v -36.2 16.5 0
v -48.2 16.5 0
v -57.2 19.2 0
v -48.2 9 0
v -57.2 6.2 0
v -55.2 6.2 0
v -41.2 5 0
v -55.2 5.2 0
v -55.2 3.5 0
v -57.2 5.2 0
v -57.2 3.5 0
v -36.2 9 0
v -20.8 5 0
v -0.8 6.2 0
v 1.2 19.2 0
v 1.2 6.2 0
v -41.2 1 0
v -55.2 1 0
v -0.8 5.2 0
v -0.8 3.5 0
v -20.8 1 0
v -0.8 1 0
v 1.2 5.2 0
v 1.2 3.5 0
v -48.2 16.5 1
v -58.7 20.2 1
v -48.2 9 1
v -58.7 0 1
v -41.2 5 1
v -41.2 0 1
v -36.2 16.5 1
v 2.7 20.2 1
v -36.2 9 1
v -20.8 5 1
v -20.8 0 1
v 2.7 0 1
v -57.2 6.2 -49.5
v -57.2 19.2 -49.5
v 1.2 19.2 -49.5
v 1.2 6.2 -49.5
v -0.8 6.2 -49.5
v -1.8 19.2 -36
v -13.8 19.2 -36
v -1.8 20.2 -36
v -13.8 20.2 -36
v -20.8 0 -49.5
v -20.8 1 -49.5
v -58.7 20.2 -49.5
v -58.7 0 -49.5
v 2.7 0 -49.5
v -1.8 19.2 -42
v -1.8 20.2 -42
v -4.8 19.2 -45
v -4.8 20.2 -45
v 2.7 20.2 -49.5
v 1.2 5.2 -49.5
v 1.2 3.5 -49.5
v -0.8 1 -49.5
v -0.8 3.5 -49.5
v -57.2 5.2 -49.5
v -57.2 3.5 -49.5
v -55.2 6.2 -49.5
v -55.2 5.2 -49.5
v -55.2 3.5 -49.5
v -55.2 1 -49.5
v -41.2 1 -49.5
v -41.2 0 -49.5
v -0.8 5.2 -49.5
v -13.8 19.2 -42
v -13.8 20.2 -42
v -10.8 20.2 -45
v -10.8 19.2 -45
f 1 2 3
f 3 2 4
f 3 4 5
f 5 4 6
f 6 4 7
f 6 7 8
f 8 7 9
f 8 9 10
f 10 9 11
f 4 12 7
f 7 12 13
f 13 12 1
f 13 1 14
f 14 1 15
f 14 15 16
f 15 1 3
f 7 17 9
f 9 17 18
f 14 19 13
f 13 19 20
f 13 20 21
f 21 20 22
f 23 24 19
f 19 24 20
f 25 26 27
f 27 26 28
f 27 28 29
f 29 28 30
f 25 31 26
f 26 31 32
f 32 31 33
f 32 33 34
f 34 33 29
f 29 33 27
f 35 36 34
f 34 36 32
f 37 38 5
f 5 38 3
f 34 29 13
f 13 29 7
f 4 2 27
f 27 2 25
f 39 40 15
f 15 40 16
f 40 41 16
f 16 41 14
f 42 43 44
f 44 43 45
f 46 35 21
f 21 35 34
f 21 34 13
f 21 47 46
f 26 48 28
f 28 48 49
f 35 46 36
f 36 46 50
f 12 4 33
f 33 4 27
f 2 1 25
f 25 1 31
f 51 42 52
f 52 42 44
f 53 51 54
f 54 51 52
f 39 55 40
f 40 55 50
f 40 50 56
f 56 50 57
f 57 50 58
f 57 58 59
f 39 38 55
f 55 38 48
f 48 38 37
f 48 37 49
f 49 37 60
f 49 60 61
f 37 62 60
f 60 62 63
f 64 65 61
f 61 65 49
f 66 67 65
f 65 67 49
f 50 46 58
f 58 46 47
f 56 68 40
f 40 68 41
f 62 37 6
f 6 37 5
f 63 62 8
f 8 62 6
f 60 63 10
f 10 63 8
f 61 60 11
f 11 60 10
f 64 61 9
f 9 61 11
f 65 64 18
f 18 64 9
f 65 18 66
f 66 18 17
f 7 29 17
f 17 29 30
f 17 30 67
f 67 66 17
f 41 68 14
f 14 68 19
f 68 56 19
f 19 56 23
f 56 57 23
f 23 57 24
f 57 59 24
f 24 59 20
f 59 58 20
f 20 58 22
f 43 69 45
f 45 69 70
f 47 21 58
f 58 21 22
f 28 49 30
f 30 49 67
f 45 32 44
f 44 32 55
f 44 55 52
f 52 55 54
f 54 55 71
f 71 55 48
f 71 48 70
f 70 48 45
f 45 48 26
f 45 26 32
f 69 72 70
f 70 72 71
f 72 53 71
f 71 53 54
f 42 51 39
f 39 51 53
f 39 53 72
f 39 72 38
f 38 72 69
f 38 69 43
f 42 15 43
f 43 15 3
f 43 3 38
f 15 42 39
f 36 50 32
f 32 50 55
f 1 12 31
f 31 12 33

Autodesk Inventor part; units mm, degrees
ref_plane "YZ Plane" through (0, 0, 0) normal (1, 0, 0) x (0, 1, 0)
ref_plane "XZ Plane" through (0, 0, 0) normal (0, 1, 0) x (-1, 0, 0)
ref_plane "XY Plane" through (0, 0, 0) normal (0, 0, 1) x (1, 0, 0)
sketch "Sketch1" plane through (0, 0, 0) normal (0, 1, 0) x (-1, 0, 0)
  line L0 (0, 0) -> (56, 0)
  line L1 (56, 0) -> (56, -50)
  line L2 (56, -50) -> (0, -50)
  line L3 (0, -50) -> (0, 0)
  line L4 (56.2, 0) -> (-0.2, 0)
  line L5 (-0.2, 0) -> (-0.2, -50)
  line L6 (-0.2, -50) -> (56.2, -50)
  line L7 (56.2, -50) -> (56.2, 0)
  line L8 (58.7, 2.5) -> (-2.7, 2.5)
  line L9 (-2.7, 2.5) -> (-2.7, -52.5)
  line L10 (-2.7, -52.5) -> (58.7, -52.5)
  line L11 (58.7, -52.5) -> (58.7, 2.5)
  line L12 (56.2, -48.0985) -> (56.2, -52.5)
  line L13 (-0.2, -48.7936) -> (-0.2, -52.5)
  point P0 (-0.2, -50)
  dimension "d0" = 56
  dimension "d1" = 50
  dimension "d2" = 0.2
  dimension "d3" = 0.2
  dimension "d4" = 0
  dimension "d5" = 0
  dimension "d6" = 2.5
  dimension "d7" = 2.5
  dimension "d8" = 2.5
  dimension "d9" = 2.5
extrude "Extrusion1" add sketch "Sketch1" along normal blind 15.2 contours L4 L5 L13 L10 L9 L8 L11 L12 L7 L0
extrude "Extrusion2" add sketch "Sketch1" along normal blind 1
sketch "Sketch2" plane through (0.2, 15.2, 0) normal (0, 0, -1) x (-1, 0, 0)
  line L0 (0, -14.2) -> (0, 0) projected
  line L1 (0, -11.7) -> (56.4, -11.7)
  line L2 (56.4, -11.7) -> (56.4, -14.2)
  line L3 (56.4, -14.2) -> (0, -14.2)
  line L4 (0, -14.2) -> (0, -11.7)
  line L5 (56.4, -14.2) -> (56.4, 0) projected
  line L6 (0, -14.2) -> (56.4, -14.2) projected
  line L7 (1, -11.7) -> (55.4, -11.7)
  line L8 (55.4, -11.7) -> (55.4, -14.2)
  line L9 (55.4, -14.2) -> (1, -14.2)
  line L10 (1, -14.2) -> (1, -11.7)
  line L11 (0, -9) -> (56.4, -9)
  line L12 (56.4, -9) -> (56.4, -10)
  line L13 (56.4, -10) -> (0, -10)
  line L14 (0, -10) -> (0, -9)
  line L15 (56.4, -9) -> (55.4, -9)
  line L16 (55.4, -9) -> (55.4, -10)
  line L17 (55.4, -10) -> (56.4, -10)
  line L18 (56.4, -10) -> (56.4, -9)
  line L19 (0, -9) -> (1, -9)
  line L20 (1, -9) -> (1, -10)
  line L21 (1, -10) -> (0, -10)
  line L22 (0, -10) -> (0, -9)
  point P0 (0.2, -15.2)
  point P1 (0, -10)
  point P2 (1, -14.2)
  dimension "d14" = 0
  dimension "d16" = 2.5
  dimension "d17" = 1
  dimension "d18" = 1
  dimension "d19" = 0
  dimension "d20" = 0
  dimension "d21" = 1.7
  dimension "d22" = 1
extrude "Extrusion3" add sketch "Sketch2" along normal up to surface (52.5 mm away) contours L0 L1 L10 L3 | L0 L11 L20 L13 | L8 L1 L2 L3 | L16 L11 L5 L13
sketch "Sketch3" plane through (2.7, 0, -52.5) normal (0, 0, -1) x (-1, 0, 0)
  line L0 (2.5, 15.2) -> (58.9, 15.2) projected
  line L1 (23.5, 15.2) -> (43.9, 15.2)
  line L2 (43.9, 15.2) -> (43.9, 0)
  line L3 (43.9, 0) -> (23.5, 0)
  line L4 (23.5, 0) -> (23.5, 15.2)
  line L5 (58.9, 6.2) -> (58.9, 15.2) projected
  line L6 (2.5, 6.2) -> (2.5, 15.2) projected
  line L7 (0, 0) -> (61.4, 0) projected
  line L8 (23.5, 0) -> (43.9, 0)
  line L9 (43.9, 0) -> (43.9, 5)
  line L10 (43.9, 5) -> (23.5, 5)
  line L11 (23.5, 5) -> (23.5, 0)
  point P0 (2.7, 0)
  dimension "d25" = 15
  dimension "d26" = 21
  dimension "d27" = 0
  dimension "d30" = 5
extrude "Extrusion5" cut sketch "Sketch3" against normal blind 75.725 contours L10 L2 L3 L4
sketch "Sketch4" plane through (-58.7, 15.2, 2.5) normal (0, 0, 1) x (1, 0, 0)
  line L0 (11.5, -0.7) -> (20.5, -0.7)
  line L1 (20.5, -0.7) -> (20.5, -4.2)
  line L2 (20.5, -4.2) -> (11.5, -4.2)
  line L3 (11.5, -4.2) -> (11.5, -0.7)
  point P0 (58.7, -15.2)
  point P1 (3.5, -11.7)
  point P2 (2.5, -11.7)
  dimension "d33" = 7.5
  dimension "d34" = 11
  dimension "d35" = 18
  dimension "d36" = 9
extrude "Extrusion6" cut sketch "Sketch4" against normal up to surface (2.5 mm away)
sketch "Sketch5" plane through (0, 15.2, 0) normal (0, 1, 0) x (1, 0, 0)
  line L0 (2.7, -2.5) -> (2.7, 52.5) projected
  line L1 (2.7, -2.5) -> (2.7, 52.5)
  line L2 (2.7, 52.5) -> (0.2, 52.5) projected
  line L3 (2.7, 52.5) -> (0.2, 52.5)
  line L4 (0.2, 52.5) -> (0.2, 0)
  line L5 (0.2, 0) -> (-56.2, 0) projected
  line L6 (0.2, 0) -> (-56.2, 0)
  line L7 (-56.2, 52.5) -> (-58.7, 52.5) projected
  line L8 (-56.2, 0) -> (-56.2, 52.5)
  line L9 (-58.7, 52.5) -> (-58.7, -2.5) projected
  line L10 (-56.2, 52.5) -> (-58.7, 52.5)
  line L11 (-58.7, -2.5) -> (2.7, -2.5) projected
  line L12 (-58.7, 52.5) -> (-58.7, -2.5)
  line L13 (-58.7, -2.5) -> (2.7, -2.5)
  point P0 (0, 0)
extrude "Extrusion7" add sketch "Sketch5" along normal blind 3
sketch "Sketch6" plane through (0, 18.2, 0) normal (0, 1, 0) x (1, 0, 0)
  line L0 (2.7, -2.5) -> (2.7, 52.5) projected
  line L1 (-58.7, 52.5) -> (-58.7, -2.5) projected
  line L2 (2.7, -2.5) -> (-58.7, -2.5)
  line L3 (-58.7, -2.5) -> (-58.7, 52.5)
  line L4 (-58.7, 52.5) -> (2.7, 52.5)
  line L5 (2.7, 52.5) -> (2.7, -2.5)
  line L6 (-13.8, 42) -> (-1.8, 42)
  line L7 (-1.8, 42) -> (-1.8, 36)
  line L8 (-1.8, 36) -> (-13.8, 36)
  line L9 (-13.8, 36) -> (-13.8, 42)
  line L10 (0.2, 0) -> (-56.2, 0) projected
  line L11 (0.2, 52.5) -> (0.2, 0) projected
  line L12 (-10.8, 45) -> (-4.8, 45)
  line L13 (-13.8, 42) -> (-8.427, 47.373)
  line L14 (-13.8, 42) -> (-6.2015, 42) construction
  line L15 (-1.8, 42) -> (-7.8, 48)
  line L16 (-1.8, 42) -> (6.6853, 42) construction
  point P0 (0, 0)
  point P1 (-4.8, 45)
  point P2 (-58.7, -2.5)
  dimension "d41" = 36
  dimension "d42" = 42
  dimension "d43" = 2
  dimension "d44" = 14
  dimension "d45" = 3
  dimension "d46" = 3
  dimension "d47" = 45
  dimension "d48" = 135
  dimension "d49" = 3
extrude "Extrusion8" add sketch "Sketch6" along normal blind 1
sketch "Sketch7" plane through (2.7, 0, -52.5) normal (0, 0, -1) x (-1, 0, 0)
  line L0 (2.5, 3.5) -> (2.5, 5.2) projected
  line L1 (2.5, 3.5) -> (1.5, 3.5)
  line L2 (1.5, 3.5) -> (1.5, 5.2)
  line L3 (1.5, 5.2) -> (2.5, 5.2)
  line L4 (2.5, 5.2) -> (2.5, 3.5)
  line L5 (2.5, 6.2) -> (2.5, 18.2) projected
  line L6 (2.5, 18.2) -> (1.5, 18.2)
  line L7 (1.5, 18.2) -> (1.5, 6.2)
  line L8 (1.5, 6.2) -> (2.5, 6.2)
  line L9 (2.5, 6.2) -> (2.5, 18.2)
  line L10 (58.9, 3.5) -> (58.9, 5.2) projected
  line L11 (58.9, 3.5) -> (59.9, 3.5)
  line L12 (59.9, 3.5) -> (59.9, 5.2)
  line L13 (59.9, 5.2) -> (58.9, 5.2)
  line L14 (58.9, 5.2) -> (58.9, 3.5)
  line L15 (57.9, 6.2) -> (58.9, 6.2) projected
  line L16 (58.9, 6.2) -> (59.9, 6.2)
  line L17 (59.9, 6.2) -> (59.9, 18.2)
  line L18 (59.9, 18.2) -> (58.9, 18.2)
  line L19 (58.9, 18.2) -> (58.9, 6.2)
  point P0 (2.7, 0)
  dimension "d52" = 1
  dimension "d53" = 1
  dimension "d54" = 1
  dimension "d55" = 1
extrude "Extrusion9" cut sketch "Sketch7" against normal up to surface (52.5 mm away)
sketch "Sketch8" plane through (0, 19.2, 0) normal (0, 1, 0) x (1, 0, 0)
  line L0 (2.7, 52.5) -> (-20.8, 52.5) projected
  line L1 (-58.7, 52.5) -> (-58.7, -2.5) projected
  line L2 (2.7, 52.5) -> (-58.7, 52.5)
  line L3 (-58.7, 52.5) -> (-58.7, 49.5)
  line L4 (-58.7, 49.5) -> (2.7, 49.5)
  line L5 (2.7, 49.5) -> (2.7, 52.5)
  point P0 (0, 0)
  dimension "d58" = 3
extrude "Extrusion10" cut sketch "Sketch8" against normal up to surface (19.2 mm away)
sketch "Sketch9" plane through (0, 19.2, 0) normal (0, 1, 0) x (1, 0, 0)
  line L0 (2.7, -2.5) -> (2.7, 49.5) projected
  line L1 (-58.7, 49.5) -> (-58.7, -2.5) projected
  line L2 (2.7, 49.5) -> (-58.7, 49.5)
  line L3 (-58.7, 49.5) -> (-58.7, -2.5)
  line L4 (-58.7, -2.5) -> (2.7, -2.5)
  line L5 (2.7, -2.5) -> (2.7, 49.5)
  line L6 (-1.8, 42) -> (-1.8, 36) projected
  line L7 (-4.8, 45) -> (-1.8, 42) projected
  line L8 (-1.8, 42) -> (-4.8, 45)
  line L9 (-10.8, 45) -> (-4.8, 45) projected
  line L10 (-4.8, 45) -> (-10.8, 45)
  line L11 (-13.8, 42) -> (-10.8, 45) projected
  line L12 (-10.8, 45) -> (-13.8, 42)
  line L13 (-13.8, 36) -> (-13.8, 42) projected
  line L14 (-13.8, 42) -> (-13.8, 36)
  line L15 (-1.8, 36) -> (-13.8, 36) projected
  line L16 (-13.8, 36) -> (-1.8, 36)
  line L17 (-1.8, 36) -> (-1.8, 42)
  point P0 (0, 0)
extrude "Extrusion11" add sketch "Sketch9" along normal blind 1
sketch "Sketch10" plane through (1.2, 18.2, -49.5) normal (0, 0, -1) x (-1, 0, 0)
  line L0 (0, 0) -> (58.4, 0) projected
  line L1 (0, 0) -> (58.4, 0)
  line L2 (58.4, 0) -> (58.4, 1)
  line L3 (58.4, 1) -> (0, 1)
  line L4 (0, 1) -> (0, 0)
  point P0 (1.2, -18.2)
  dimension "d63" = 1
extrude "Extrusion12" cut sketch "Sketch10" against normal up to surface (49.5 mm away)
sketch "Sketch11" plane through (0, 20.2, 0) normal (0, 1, 0) x (1, 0, 0)
  line L0 (2.7, -2.5) -> (2.7, 49.5) projected
  line L1 (-58.7, 49.5) -> (-58.7, -2.5) projected
  line L2 (2.7, -2.5) -> (-58.7, -2.5)
  line L3 (-58.7, -2.5) -> (-58.7, -1)
  line L4 (-58.7, -1) -> (2.7, -1)
  line L5 (2.7, -1) -> (2.7, -2.5)
  point P0 (0, 0)
  dimension "d66" = 1.5
extrude "Extrusion13" cut sketch "Sketch11" against normal blind 24.925
sketch "Sketch12" plane through (-58.7, 20.2, 1) normal (0, 0, 1) x (1, 0, 0)
  line L0 (10.5, -3.7) -> (22.5, -3.7)
  line L1 (22.5, -3.7) -> (22.5, -11.2)
  line L2 (22.5, -11.2) -> (10.5, -11.2)
  line L3 (10.5, -11.2) -> (10.5, -3.7)
  line L4 (20.5, -5.7) -> (11.5, -5.7) projected
  line L5 (20.5, -9.2) -> (20.5, -5.7) projected
  line L6 (11.5, -9.2) -> (20.5, -9.2) projected
  line L7 (11.5, -5.7) -> (11.5, -9.2) projected
  point P0 (58.7, -20.2)
  dimension "d69" = 2
  dimension "d70" = 2
  dimension "d71" = 2
  dimension "d73" = 1
extrude "Extrusion14" cut sketch "Sketch12" against normal up to surface (1 mm away)
equation "\"d23\" = d16"
properties part number "case"
